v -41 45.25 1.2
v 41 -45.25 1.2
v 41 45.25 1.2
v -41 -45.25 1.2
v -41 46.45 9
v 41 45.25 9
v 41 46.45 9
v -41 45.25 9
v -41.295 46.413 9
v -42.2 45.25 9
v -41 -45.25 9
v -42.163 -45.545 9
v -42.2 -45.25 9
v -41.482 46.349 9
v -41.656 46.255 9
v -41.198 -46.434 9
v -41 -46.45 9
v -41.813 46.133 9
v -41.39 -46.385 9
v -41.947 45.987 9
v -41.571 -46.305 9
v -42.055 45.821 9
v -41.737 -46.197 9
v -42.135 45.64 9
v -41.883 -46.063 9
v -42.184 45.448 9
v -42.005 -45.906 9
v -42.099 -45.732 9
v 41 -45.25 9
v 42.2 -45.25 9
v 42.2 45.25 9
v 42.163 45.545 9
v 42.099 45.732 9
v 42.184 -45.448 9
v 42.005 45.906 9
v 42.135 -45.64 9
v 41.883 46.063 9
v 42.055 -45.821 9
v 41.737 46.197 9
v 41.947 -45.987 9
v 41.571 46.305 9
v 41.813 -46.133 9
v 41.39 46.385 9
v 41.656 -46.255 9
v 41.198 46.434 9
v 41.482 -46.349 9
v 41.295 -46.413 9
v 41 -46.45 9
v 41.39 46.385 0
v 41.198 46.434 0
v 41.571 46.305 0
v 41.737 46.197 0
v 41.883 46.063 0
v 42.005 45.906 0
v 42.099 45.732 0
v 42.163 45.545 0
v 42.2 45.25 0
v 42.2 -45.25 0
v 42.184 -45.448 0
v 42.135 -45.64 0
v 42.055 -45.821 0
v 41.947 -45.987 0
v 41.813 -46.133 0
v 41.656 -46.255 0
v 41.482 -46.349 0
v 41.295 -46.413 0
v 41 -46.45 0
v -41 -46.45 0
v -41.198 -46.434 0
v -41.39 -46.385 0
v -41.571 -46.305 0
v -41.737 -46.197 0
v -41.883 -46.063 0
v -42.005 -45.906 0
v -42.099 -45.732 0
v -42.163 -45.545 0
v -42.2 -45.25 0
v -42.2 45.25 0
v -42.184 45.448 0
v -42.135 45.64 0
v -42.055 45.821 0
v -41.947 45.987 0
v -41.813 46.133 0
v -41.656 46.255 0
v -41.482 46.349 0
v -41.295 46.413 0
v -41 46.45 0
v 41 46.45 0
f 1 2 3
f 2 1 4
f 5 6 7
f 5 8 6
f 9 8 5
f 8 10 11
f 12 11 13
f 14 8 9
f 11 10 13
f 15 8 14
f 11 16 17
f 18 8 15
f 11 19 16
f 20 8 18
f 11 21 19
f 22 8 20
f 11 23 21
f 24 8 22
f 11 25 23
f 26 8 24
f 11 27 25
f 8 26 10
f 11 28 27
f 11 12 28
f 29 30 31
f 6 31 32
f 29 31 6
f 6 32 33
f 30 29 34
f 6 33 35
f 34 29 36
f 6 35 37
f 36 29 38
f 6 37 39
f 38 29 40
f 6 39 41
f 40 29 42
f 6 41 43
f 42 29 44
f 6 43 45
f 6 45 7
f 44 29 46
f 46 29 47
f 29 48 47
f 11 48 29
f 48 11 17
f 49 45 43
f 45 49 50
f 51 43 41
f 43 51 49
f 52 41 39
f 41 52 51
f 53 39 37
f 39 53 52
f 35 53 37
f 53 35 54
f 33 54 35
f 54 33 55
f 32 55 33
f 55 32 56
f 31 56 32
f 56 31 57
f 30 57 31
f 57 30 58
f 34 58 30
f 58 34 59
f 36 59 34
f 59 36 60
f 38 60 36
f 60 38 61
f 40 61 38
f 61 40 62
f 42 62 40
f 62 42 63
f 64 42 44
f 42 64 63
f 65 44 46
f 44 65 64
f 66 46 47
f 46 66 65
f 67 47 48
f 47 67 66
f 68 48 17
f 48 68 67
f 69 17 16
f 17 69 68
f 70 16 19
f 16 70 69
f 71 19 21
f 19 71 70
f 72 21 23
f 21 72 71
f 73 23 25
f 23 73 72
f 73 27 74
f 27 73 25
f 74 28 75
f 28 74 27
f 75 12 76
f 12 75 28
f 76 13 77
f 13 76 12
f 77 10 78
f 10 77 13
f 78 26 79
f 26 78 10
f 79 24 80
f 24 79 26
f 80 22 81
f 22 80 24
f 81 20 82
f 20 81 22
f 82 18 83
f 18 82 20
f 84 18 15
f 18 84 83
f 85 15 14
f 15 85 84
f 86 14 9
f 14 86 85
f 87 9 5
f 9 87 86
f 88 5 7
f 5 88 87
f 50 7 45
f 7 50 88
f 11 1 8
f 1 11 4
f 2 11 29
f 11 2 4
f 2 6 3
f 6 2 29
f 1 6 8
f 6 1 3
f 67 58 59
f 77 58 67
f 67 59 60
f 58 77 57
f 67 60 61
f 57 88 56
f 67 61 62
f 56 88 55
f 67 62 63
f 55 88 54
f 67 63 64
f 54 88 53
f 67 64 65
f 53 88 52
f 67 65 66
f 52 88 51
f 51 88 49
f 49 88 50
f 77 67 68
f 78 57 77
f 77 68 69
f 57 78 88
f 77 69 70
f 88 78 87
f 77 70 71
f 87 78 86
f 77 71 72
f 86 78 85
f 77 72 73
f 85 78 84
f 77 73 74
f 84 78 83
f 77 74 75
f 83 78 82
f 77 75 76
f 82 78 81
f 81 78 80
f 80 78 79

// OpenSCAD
/* [Rendering options] */
// Show placeholder PCB in OpenSCAD preview
show_pcb = false;
// Lid mounting method
lid_model = "cap"; // [cap, inner-fit]
// Conditional rendering
render = "case"; // [all, case, lid]


/* [Dimensions] */
// Height of the PCB mounting stand-offs between the bottom of the case and the PCB
standoff_height = 5;
// PCB thickness
pcb_thickness = 1.6;
// Bottom layer thickness
floor_height = 1.2;
// Case wall thickness
wall_thickness = 1.2;
// Space between the top of the PCB and the top of the case
headroom = 0;

/* [Hidden] */
$fa=$preview ? 10 : 4;
$fs=0.2;
inner_height = floor_height + standoff_height + pcb_thickness + headroom;

module wall (thickness, height) {
    linear_extrude(height, convexity=10) {
        difference() {
            offset(r=thickness)
                children();
            children();
        }
    }
}

module bottom(thickness, height) {
    linear_extrude(height, convexity=3) {
        offset(r=thickness)
            children();
    }
}

module lid(thickness, height, edge) {
    linear_extrude(height, convexity=10) {
        offset(r=thickness)
            children();
    }
    translate([0,0,-edge])
    difference() {
        linear_extrude(edge, convexity=10) {
                offset(r=-0.2)
                children();
        }
        translate([0,0, -0.5])
         linear_extrude(edge+1, convexity=10) {
                offset(r=-1.2)
                children();
        }
    }
}


module box(wall_thick, bottom_layers, height) {
    if (render == "all" || render == "case") {
        translate([0,0, bottom_layers])
            wall(wall_thick, height) children();
        bottom(wall_thick, bottom_layers) children();
    }
    
    if (render == "all" || render == "lid") {
        translate([0, 0, height+bottom_layers+0.1])
        lid(wall_thick, bottom_layers, lid_model == "inner-fit" ? headroom-2.5: bottom_layers) 
            children();
    }
}

module mount(drill, space, height) {
    translate([0,0,height/2])
        difference() {
            cylinder(h=height, r=(space/2), center=true);
            cylinder(h=(height*2), r=(drill/2), center=true);
            
            translate([0, 0, height/2+0.01])
                children();
        }
        
}

module connector(min_x, min_y, max_x, max_y, height) {
    size_x = max_x - min_x;
    size_y = max_y - min_y;
    translate([(min_x + max_x)/2, (min_y + max_y)/2, height/2])
        cube([size_x, size_y, height], center=true);
}

module pcb() {
    thickness = 1.6;

    color("#009900")
    difference() {
        linear_extrude(thickness) {
            polygon(points = [[108,27], [188,27], [188,115.5], [108,115.5]]);
        }
    }
}

module case_outline() {
    polygon(points = [[107,26], [189,26], [189,116.5], [107,116.5]]);
}

rotate([render == "lid" ? 180 : 0, 0, 0])
scale([1, -1, 1])
translate([-148.0, -71.25, 0]) {
    pcb_top = floor_height + standoff_height + pcb_thickness;

    difference() {
        box(wall_thickness, floor_height, inner_height) {
            case_outline();
        }

    }

    if (show_pcb && $preview) {
        translate([0, 0, floor_height + standoff_height])
            pcb();
    }

    if (render == "all" || render == "case") {
    }
}
